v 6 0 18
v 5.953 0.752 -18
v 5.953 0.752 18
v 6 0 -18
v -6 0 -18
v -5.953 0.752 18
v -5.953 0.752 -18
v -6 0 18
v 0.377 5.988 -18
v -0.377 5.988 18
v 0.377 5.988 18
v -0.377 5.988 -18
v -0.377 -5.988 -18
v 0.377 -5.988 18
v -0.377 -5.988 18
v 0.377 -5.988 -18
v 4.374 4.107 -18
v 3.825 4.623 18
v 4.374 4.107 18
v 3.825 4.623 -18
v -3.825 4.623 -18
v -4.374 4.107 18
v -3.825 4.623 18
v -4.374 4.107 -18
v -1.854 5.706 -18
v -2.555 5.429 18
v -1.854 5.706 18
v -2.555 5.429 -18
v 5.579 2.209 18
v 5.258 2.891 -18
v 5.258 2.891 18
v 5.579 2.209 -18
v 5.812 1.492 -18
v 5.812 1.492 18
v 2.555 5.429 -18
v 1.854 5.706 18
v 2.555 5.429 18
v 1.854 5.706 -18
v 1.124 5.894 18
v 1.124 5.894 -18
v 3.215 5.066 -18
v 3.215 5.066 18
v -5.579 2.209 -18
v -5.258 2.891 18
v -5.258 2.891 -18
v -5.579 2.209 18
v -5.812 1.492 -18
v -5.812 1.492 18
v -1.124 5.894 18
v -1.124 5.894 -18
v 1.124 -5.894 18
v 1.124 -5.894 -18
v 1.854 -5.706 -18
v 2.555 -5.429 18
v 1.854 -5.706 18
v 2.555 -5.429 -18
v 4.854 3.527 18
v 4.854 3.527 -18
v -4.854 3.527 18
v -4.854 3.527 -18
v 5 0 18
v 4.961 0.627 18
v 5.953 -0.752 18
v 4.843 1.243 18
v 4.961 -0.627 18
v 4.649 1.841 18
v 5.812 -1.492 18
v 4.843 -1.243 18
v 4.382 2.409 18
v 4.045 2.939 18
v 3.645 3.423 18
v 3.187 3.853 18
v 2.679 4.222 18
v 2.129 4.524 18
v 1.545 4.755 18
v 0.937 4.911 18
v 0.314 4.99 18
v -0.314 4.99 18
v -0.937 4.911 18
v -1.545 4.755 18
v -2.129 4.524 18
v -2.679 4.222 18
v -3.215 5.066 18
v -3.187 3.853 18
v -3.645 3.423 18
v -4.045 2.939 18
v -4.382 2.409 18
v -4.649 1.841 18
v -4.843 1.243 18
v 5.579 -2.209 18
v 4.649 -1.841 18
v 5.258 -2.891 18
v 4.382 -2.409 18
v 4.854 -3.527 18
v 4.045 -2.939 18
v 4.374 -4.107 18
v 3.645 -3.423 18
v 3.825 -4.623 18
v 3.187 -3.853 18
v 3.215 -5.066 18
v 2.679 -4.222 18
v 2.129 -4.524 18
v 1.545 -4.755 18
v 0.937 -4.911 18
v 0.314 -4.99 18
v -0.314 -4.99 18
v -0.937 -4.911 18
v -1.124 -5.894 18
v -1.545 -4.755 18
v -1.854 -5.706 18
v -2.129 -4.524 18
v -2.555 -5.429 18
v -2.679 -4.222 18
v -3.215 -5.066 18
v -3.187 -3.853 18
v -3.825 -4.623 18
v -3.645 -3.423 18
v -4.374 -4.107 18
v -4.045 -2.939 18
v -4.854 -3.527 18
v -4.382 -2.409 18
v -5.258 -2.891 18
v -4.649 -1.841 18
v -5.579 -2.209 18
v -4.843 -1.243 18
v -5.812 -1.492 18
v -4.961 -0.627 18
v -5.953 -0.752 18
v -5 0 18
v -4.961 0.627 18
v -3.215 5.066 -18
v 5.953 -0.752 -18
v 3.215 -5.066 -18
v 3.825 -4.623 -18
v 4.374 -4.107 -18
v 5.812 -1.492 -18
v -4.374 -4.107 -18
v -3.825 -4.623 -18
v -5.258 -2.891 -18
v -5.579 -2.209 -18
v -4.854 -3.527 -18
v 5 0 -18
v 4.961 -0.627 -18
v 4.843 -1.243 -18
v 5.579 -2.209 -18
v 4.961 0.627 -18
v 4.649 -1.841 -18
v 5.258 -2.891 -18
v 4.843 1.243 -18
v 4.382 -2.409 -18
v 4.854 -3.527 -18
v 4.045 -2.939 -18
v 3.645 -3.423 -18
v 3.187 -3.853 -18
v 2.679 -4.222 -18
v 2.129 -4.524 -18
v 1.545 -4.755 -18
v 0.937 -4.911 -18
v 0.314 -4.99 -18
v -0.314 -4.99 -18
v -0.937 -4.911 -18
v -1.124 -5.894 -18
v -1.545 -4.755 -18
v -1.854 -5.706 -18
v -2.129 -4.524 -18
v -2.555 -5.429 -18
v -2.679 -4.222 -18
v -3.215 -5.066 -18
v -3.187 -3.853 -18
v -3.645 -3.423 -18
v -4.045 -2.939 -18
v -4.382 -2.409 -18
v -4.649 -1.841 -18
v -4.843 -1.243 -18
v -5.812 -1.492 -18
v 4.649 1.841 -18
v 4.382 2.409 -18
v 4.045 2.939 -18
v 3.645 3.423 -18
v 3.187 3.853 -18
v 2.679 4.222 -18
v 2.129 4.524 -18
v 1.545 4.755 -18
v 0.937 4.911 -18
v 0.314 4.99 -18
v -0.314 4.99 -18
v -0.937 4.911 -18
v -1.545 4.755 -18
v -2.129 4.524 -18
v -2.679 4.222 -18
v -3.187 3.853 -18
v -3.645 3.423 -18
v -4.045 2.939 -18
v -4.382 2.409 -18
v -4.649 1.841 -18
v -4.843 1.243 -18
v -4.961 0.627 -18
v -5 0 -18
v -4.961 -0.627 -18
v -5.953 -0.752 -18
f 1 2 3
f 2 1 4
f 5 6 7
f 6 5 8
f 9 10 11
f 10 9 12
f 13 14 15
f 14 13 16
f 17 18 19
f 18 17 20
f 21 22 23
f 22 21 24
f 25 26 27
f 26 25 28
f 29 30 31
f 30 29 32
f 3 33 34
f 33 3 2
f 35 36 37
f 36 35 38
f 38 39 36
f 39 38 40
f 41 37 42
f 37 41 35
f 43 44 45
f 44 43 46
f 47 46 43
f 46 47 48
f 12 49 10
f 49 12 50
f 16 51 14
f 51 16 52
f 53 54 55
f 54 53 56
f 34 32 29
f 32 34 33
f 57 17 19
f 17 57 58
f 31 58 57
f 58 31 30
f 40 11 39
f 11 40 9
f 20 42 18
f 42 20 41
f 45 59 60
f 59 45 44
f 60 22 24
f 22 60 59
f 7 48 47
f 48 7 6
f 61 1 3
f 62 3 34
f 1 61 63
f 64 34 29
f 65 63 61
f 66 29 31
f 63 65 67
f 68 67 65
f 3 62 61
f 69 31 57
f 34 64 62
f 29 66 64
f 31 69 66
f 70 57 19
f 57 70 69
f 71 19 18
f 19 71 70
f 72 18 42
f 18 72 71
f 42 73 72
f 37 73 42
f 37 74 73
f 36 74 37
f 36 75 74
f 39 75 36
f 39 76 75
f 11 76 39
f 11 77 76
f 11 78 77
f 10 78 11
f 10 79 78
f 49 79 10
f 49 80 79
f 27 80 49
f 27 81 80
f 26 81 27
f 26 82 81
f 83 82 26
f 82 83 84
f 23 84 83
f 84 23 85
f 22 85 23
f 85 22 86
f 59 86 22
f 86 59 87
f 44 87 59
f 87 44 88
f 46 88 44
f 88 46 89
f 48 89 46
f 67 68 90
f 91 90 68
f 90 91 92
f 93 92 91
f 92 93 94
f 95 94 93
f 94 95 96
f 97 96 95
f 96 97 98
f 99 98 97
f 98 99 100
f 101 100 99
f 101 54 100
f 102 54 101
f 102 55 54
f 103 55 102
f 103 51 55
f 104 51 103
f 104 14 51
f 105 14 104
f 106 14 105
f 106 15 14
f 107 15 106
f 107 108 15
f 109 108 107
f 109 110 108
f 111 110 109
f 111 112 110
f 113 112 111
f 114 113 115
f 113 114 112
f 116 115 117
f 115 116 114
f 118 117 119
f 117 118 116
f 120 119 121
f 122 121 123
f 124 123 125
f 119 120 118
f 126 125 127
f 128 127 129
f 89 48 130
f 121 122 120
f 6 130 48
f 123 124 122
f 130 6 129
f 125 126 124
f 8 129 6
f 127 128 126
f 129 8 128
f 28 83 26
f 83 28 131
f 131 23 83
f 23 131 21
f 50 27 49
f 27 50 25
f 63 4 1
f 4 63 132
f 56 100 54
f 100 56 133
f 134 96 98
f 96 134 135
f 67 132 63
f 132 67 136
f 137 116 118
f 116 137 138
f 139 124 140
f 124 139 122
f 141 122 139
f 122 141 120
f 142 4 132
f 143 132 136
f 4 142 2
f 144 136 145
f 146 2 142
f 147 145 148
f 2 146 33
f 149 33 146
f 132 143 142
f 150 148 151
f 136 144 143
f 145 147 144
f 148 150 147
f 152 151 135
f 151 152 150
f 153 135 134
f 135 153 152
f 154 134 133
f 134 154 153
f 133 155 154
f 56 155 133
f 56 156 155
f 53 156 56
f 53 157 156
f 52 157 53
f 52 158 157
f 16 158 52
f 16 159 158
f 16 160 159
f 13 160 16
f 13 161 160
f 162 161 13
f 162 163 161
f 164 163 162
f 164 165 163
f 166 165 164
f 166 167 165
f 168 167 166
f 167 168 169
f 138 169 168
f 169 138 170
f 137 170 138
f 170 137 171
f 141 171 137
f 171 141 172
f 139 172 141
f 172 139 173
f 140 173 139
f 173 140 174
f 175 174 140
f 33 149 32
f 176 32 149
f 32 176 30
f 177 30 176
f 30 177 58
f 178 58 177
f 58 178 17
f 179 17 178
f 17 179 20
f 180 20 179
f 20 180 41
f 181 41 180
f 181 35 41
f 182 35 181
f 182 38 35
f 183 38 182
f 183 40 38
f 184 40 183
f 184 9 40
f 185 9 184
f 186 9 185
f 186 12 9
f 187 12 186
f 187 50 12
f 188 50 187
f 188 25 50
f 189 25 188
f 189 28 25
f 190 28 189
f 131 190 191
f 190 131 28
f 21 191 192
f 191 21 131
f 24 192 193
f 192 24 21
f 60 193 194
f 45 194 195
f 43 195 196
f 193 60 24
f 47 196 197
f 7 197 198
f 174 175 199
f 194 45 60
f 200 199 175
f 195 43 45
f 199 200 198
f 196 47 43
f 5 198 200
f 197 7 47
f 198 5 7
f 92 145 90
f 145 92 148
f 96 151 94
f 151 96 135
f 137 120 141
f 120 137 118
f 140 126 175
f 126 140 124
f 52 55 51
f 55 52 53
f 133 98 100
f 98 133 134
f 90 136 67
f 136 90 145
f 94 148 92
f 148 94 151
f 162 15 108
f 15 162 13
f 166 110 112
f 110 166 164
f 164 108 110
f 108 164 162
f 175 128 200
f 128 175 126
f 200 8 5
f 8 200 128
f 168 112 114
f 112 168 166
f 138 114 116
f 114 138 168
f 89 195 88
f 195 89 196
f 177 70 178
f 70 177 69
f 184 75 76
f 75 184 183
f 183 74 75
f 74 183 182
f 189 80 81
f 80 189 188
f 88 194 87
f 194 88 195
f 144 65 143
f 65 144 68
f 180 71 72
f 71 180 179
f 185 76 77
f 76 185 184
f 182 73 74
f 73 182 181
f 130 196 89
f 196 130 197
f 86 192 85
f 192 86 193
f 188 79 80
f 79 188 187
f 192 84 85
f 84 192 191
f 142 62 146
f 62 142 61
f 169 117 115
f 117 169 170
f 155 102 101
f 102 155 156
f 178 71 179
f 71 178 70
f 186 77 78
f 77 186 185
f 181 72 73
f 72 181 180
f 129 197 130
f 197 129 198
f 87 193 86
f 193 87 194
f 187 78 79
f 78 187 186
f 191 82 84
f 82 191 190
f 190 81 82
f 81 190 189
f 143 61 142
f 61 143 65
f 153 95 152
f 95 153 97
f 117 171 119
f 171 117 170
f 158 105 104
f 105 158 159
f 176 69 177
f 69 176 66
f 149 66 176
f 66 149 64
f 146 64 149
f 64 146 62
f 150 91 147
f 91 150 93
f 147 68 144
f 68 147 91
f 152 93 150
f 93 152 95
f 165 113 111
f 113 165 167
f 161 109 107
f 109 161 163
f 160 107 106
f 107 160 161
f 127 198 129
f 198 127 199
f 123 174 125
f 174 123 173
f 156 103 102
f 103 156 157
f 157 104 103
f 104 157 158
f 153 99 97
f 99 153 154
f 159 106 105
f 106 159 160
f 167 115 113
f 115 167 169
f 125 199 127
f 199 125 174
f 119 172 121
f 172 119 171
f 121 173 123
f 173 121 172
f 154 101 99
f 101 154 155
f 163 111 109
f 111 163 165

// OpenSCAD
$fn = 50;


difference() {
	union() {
		translate(v = [0, 0, -18.0000000000]) {
			cylinder(h = 36, r = 6.0000000000);
		}
	}
	union() {
		translate(v = [0, 0, -100.0000000000]) {
			cylinder(h = 200, r = 5);
		}
	}
}
